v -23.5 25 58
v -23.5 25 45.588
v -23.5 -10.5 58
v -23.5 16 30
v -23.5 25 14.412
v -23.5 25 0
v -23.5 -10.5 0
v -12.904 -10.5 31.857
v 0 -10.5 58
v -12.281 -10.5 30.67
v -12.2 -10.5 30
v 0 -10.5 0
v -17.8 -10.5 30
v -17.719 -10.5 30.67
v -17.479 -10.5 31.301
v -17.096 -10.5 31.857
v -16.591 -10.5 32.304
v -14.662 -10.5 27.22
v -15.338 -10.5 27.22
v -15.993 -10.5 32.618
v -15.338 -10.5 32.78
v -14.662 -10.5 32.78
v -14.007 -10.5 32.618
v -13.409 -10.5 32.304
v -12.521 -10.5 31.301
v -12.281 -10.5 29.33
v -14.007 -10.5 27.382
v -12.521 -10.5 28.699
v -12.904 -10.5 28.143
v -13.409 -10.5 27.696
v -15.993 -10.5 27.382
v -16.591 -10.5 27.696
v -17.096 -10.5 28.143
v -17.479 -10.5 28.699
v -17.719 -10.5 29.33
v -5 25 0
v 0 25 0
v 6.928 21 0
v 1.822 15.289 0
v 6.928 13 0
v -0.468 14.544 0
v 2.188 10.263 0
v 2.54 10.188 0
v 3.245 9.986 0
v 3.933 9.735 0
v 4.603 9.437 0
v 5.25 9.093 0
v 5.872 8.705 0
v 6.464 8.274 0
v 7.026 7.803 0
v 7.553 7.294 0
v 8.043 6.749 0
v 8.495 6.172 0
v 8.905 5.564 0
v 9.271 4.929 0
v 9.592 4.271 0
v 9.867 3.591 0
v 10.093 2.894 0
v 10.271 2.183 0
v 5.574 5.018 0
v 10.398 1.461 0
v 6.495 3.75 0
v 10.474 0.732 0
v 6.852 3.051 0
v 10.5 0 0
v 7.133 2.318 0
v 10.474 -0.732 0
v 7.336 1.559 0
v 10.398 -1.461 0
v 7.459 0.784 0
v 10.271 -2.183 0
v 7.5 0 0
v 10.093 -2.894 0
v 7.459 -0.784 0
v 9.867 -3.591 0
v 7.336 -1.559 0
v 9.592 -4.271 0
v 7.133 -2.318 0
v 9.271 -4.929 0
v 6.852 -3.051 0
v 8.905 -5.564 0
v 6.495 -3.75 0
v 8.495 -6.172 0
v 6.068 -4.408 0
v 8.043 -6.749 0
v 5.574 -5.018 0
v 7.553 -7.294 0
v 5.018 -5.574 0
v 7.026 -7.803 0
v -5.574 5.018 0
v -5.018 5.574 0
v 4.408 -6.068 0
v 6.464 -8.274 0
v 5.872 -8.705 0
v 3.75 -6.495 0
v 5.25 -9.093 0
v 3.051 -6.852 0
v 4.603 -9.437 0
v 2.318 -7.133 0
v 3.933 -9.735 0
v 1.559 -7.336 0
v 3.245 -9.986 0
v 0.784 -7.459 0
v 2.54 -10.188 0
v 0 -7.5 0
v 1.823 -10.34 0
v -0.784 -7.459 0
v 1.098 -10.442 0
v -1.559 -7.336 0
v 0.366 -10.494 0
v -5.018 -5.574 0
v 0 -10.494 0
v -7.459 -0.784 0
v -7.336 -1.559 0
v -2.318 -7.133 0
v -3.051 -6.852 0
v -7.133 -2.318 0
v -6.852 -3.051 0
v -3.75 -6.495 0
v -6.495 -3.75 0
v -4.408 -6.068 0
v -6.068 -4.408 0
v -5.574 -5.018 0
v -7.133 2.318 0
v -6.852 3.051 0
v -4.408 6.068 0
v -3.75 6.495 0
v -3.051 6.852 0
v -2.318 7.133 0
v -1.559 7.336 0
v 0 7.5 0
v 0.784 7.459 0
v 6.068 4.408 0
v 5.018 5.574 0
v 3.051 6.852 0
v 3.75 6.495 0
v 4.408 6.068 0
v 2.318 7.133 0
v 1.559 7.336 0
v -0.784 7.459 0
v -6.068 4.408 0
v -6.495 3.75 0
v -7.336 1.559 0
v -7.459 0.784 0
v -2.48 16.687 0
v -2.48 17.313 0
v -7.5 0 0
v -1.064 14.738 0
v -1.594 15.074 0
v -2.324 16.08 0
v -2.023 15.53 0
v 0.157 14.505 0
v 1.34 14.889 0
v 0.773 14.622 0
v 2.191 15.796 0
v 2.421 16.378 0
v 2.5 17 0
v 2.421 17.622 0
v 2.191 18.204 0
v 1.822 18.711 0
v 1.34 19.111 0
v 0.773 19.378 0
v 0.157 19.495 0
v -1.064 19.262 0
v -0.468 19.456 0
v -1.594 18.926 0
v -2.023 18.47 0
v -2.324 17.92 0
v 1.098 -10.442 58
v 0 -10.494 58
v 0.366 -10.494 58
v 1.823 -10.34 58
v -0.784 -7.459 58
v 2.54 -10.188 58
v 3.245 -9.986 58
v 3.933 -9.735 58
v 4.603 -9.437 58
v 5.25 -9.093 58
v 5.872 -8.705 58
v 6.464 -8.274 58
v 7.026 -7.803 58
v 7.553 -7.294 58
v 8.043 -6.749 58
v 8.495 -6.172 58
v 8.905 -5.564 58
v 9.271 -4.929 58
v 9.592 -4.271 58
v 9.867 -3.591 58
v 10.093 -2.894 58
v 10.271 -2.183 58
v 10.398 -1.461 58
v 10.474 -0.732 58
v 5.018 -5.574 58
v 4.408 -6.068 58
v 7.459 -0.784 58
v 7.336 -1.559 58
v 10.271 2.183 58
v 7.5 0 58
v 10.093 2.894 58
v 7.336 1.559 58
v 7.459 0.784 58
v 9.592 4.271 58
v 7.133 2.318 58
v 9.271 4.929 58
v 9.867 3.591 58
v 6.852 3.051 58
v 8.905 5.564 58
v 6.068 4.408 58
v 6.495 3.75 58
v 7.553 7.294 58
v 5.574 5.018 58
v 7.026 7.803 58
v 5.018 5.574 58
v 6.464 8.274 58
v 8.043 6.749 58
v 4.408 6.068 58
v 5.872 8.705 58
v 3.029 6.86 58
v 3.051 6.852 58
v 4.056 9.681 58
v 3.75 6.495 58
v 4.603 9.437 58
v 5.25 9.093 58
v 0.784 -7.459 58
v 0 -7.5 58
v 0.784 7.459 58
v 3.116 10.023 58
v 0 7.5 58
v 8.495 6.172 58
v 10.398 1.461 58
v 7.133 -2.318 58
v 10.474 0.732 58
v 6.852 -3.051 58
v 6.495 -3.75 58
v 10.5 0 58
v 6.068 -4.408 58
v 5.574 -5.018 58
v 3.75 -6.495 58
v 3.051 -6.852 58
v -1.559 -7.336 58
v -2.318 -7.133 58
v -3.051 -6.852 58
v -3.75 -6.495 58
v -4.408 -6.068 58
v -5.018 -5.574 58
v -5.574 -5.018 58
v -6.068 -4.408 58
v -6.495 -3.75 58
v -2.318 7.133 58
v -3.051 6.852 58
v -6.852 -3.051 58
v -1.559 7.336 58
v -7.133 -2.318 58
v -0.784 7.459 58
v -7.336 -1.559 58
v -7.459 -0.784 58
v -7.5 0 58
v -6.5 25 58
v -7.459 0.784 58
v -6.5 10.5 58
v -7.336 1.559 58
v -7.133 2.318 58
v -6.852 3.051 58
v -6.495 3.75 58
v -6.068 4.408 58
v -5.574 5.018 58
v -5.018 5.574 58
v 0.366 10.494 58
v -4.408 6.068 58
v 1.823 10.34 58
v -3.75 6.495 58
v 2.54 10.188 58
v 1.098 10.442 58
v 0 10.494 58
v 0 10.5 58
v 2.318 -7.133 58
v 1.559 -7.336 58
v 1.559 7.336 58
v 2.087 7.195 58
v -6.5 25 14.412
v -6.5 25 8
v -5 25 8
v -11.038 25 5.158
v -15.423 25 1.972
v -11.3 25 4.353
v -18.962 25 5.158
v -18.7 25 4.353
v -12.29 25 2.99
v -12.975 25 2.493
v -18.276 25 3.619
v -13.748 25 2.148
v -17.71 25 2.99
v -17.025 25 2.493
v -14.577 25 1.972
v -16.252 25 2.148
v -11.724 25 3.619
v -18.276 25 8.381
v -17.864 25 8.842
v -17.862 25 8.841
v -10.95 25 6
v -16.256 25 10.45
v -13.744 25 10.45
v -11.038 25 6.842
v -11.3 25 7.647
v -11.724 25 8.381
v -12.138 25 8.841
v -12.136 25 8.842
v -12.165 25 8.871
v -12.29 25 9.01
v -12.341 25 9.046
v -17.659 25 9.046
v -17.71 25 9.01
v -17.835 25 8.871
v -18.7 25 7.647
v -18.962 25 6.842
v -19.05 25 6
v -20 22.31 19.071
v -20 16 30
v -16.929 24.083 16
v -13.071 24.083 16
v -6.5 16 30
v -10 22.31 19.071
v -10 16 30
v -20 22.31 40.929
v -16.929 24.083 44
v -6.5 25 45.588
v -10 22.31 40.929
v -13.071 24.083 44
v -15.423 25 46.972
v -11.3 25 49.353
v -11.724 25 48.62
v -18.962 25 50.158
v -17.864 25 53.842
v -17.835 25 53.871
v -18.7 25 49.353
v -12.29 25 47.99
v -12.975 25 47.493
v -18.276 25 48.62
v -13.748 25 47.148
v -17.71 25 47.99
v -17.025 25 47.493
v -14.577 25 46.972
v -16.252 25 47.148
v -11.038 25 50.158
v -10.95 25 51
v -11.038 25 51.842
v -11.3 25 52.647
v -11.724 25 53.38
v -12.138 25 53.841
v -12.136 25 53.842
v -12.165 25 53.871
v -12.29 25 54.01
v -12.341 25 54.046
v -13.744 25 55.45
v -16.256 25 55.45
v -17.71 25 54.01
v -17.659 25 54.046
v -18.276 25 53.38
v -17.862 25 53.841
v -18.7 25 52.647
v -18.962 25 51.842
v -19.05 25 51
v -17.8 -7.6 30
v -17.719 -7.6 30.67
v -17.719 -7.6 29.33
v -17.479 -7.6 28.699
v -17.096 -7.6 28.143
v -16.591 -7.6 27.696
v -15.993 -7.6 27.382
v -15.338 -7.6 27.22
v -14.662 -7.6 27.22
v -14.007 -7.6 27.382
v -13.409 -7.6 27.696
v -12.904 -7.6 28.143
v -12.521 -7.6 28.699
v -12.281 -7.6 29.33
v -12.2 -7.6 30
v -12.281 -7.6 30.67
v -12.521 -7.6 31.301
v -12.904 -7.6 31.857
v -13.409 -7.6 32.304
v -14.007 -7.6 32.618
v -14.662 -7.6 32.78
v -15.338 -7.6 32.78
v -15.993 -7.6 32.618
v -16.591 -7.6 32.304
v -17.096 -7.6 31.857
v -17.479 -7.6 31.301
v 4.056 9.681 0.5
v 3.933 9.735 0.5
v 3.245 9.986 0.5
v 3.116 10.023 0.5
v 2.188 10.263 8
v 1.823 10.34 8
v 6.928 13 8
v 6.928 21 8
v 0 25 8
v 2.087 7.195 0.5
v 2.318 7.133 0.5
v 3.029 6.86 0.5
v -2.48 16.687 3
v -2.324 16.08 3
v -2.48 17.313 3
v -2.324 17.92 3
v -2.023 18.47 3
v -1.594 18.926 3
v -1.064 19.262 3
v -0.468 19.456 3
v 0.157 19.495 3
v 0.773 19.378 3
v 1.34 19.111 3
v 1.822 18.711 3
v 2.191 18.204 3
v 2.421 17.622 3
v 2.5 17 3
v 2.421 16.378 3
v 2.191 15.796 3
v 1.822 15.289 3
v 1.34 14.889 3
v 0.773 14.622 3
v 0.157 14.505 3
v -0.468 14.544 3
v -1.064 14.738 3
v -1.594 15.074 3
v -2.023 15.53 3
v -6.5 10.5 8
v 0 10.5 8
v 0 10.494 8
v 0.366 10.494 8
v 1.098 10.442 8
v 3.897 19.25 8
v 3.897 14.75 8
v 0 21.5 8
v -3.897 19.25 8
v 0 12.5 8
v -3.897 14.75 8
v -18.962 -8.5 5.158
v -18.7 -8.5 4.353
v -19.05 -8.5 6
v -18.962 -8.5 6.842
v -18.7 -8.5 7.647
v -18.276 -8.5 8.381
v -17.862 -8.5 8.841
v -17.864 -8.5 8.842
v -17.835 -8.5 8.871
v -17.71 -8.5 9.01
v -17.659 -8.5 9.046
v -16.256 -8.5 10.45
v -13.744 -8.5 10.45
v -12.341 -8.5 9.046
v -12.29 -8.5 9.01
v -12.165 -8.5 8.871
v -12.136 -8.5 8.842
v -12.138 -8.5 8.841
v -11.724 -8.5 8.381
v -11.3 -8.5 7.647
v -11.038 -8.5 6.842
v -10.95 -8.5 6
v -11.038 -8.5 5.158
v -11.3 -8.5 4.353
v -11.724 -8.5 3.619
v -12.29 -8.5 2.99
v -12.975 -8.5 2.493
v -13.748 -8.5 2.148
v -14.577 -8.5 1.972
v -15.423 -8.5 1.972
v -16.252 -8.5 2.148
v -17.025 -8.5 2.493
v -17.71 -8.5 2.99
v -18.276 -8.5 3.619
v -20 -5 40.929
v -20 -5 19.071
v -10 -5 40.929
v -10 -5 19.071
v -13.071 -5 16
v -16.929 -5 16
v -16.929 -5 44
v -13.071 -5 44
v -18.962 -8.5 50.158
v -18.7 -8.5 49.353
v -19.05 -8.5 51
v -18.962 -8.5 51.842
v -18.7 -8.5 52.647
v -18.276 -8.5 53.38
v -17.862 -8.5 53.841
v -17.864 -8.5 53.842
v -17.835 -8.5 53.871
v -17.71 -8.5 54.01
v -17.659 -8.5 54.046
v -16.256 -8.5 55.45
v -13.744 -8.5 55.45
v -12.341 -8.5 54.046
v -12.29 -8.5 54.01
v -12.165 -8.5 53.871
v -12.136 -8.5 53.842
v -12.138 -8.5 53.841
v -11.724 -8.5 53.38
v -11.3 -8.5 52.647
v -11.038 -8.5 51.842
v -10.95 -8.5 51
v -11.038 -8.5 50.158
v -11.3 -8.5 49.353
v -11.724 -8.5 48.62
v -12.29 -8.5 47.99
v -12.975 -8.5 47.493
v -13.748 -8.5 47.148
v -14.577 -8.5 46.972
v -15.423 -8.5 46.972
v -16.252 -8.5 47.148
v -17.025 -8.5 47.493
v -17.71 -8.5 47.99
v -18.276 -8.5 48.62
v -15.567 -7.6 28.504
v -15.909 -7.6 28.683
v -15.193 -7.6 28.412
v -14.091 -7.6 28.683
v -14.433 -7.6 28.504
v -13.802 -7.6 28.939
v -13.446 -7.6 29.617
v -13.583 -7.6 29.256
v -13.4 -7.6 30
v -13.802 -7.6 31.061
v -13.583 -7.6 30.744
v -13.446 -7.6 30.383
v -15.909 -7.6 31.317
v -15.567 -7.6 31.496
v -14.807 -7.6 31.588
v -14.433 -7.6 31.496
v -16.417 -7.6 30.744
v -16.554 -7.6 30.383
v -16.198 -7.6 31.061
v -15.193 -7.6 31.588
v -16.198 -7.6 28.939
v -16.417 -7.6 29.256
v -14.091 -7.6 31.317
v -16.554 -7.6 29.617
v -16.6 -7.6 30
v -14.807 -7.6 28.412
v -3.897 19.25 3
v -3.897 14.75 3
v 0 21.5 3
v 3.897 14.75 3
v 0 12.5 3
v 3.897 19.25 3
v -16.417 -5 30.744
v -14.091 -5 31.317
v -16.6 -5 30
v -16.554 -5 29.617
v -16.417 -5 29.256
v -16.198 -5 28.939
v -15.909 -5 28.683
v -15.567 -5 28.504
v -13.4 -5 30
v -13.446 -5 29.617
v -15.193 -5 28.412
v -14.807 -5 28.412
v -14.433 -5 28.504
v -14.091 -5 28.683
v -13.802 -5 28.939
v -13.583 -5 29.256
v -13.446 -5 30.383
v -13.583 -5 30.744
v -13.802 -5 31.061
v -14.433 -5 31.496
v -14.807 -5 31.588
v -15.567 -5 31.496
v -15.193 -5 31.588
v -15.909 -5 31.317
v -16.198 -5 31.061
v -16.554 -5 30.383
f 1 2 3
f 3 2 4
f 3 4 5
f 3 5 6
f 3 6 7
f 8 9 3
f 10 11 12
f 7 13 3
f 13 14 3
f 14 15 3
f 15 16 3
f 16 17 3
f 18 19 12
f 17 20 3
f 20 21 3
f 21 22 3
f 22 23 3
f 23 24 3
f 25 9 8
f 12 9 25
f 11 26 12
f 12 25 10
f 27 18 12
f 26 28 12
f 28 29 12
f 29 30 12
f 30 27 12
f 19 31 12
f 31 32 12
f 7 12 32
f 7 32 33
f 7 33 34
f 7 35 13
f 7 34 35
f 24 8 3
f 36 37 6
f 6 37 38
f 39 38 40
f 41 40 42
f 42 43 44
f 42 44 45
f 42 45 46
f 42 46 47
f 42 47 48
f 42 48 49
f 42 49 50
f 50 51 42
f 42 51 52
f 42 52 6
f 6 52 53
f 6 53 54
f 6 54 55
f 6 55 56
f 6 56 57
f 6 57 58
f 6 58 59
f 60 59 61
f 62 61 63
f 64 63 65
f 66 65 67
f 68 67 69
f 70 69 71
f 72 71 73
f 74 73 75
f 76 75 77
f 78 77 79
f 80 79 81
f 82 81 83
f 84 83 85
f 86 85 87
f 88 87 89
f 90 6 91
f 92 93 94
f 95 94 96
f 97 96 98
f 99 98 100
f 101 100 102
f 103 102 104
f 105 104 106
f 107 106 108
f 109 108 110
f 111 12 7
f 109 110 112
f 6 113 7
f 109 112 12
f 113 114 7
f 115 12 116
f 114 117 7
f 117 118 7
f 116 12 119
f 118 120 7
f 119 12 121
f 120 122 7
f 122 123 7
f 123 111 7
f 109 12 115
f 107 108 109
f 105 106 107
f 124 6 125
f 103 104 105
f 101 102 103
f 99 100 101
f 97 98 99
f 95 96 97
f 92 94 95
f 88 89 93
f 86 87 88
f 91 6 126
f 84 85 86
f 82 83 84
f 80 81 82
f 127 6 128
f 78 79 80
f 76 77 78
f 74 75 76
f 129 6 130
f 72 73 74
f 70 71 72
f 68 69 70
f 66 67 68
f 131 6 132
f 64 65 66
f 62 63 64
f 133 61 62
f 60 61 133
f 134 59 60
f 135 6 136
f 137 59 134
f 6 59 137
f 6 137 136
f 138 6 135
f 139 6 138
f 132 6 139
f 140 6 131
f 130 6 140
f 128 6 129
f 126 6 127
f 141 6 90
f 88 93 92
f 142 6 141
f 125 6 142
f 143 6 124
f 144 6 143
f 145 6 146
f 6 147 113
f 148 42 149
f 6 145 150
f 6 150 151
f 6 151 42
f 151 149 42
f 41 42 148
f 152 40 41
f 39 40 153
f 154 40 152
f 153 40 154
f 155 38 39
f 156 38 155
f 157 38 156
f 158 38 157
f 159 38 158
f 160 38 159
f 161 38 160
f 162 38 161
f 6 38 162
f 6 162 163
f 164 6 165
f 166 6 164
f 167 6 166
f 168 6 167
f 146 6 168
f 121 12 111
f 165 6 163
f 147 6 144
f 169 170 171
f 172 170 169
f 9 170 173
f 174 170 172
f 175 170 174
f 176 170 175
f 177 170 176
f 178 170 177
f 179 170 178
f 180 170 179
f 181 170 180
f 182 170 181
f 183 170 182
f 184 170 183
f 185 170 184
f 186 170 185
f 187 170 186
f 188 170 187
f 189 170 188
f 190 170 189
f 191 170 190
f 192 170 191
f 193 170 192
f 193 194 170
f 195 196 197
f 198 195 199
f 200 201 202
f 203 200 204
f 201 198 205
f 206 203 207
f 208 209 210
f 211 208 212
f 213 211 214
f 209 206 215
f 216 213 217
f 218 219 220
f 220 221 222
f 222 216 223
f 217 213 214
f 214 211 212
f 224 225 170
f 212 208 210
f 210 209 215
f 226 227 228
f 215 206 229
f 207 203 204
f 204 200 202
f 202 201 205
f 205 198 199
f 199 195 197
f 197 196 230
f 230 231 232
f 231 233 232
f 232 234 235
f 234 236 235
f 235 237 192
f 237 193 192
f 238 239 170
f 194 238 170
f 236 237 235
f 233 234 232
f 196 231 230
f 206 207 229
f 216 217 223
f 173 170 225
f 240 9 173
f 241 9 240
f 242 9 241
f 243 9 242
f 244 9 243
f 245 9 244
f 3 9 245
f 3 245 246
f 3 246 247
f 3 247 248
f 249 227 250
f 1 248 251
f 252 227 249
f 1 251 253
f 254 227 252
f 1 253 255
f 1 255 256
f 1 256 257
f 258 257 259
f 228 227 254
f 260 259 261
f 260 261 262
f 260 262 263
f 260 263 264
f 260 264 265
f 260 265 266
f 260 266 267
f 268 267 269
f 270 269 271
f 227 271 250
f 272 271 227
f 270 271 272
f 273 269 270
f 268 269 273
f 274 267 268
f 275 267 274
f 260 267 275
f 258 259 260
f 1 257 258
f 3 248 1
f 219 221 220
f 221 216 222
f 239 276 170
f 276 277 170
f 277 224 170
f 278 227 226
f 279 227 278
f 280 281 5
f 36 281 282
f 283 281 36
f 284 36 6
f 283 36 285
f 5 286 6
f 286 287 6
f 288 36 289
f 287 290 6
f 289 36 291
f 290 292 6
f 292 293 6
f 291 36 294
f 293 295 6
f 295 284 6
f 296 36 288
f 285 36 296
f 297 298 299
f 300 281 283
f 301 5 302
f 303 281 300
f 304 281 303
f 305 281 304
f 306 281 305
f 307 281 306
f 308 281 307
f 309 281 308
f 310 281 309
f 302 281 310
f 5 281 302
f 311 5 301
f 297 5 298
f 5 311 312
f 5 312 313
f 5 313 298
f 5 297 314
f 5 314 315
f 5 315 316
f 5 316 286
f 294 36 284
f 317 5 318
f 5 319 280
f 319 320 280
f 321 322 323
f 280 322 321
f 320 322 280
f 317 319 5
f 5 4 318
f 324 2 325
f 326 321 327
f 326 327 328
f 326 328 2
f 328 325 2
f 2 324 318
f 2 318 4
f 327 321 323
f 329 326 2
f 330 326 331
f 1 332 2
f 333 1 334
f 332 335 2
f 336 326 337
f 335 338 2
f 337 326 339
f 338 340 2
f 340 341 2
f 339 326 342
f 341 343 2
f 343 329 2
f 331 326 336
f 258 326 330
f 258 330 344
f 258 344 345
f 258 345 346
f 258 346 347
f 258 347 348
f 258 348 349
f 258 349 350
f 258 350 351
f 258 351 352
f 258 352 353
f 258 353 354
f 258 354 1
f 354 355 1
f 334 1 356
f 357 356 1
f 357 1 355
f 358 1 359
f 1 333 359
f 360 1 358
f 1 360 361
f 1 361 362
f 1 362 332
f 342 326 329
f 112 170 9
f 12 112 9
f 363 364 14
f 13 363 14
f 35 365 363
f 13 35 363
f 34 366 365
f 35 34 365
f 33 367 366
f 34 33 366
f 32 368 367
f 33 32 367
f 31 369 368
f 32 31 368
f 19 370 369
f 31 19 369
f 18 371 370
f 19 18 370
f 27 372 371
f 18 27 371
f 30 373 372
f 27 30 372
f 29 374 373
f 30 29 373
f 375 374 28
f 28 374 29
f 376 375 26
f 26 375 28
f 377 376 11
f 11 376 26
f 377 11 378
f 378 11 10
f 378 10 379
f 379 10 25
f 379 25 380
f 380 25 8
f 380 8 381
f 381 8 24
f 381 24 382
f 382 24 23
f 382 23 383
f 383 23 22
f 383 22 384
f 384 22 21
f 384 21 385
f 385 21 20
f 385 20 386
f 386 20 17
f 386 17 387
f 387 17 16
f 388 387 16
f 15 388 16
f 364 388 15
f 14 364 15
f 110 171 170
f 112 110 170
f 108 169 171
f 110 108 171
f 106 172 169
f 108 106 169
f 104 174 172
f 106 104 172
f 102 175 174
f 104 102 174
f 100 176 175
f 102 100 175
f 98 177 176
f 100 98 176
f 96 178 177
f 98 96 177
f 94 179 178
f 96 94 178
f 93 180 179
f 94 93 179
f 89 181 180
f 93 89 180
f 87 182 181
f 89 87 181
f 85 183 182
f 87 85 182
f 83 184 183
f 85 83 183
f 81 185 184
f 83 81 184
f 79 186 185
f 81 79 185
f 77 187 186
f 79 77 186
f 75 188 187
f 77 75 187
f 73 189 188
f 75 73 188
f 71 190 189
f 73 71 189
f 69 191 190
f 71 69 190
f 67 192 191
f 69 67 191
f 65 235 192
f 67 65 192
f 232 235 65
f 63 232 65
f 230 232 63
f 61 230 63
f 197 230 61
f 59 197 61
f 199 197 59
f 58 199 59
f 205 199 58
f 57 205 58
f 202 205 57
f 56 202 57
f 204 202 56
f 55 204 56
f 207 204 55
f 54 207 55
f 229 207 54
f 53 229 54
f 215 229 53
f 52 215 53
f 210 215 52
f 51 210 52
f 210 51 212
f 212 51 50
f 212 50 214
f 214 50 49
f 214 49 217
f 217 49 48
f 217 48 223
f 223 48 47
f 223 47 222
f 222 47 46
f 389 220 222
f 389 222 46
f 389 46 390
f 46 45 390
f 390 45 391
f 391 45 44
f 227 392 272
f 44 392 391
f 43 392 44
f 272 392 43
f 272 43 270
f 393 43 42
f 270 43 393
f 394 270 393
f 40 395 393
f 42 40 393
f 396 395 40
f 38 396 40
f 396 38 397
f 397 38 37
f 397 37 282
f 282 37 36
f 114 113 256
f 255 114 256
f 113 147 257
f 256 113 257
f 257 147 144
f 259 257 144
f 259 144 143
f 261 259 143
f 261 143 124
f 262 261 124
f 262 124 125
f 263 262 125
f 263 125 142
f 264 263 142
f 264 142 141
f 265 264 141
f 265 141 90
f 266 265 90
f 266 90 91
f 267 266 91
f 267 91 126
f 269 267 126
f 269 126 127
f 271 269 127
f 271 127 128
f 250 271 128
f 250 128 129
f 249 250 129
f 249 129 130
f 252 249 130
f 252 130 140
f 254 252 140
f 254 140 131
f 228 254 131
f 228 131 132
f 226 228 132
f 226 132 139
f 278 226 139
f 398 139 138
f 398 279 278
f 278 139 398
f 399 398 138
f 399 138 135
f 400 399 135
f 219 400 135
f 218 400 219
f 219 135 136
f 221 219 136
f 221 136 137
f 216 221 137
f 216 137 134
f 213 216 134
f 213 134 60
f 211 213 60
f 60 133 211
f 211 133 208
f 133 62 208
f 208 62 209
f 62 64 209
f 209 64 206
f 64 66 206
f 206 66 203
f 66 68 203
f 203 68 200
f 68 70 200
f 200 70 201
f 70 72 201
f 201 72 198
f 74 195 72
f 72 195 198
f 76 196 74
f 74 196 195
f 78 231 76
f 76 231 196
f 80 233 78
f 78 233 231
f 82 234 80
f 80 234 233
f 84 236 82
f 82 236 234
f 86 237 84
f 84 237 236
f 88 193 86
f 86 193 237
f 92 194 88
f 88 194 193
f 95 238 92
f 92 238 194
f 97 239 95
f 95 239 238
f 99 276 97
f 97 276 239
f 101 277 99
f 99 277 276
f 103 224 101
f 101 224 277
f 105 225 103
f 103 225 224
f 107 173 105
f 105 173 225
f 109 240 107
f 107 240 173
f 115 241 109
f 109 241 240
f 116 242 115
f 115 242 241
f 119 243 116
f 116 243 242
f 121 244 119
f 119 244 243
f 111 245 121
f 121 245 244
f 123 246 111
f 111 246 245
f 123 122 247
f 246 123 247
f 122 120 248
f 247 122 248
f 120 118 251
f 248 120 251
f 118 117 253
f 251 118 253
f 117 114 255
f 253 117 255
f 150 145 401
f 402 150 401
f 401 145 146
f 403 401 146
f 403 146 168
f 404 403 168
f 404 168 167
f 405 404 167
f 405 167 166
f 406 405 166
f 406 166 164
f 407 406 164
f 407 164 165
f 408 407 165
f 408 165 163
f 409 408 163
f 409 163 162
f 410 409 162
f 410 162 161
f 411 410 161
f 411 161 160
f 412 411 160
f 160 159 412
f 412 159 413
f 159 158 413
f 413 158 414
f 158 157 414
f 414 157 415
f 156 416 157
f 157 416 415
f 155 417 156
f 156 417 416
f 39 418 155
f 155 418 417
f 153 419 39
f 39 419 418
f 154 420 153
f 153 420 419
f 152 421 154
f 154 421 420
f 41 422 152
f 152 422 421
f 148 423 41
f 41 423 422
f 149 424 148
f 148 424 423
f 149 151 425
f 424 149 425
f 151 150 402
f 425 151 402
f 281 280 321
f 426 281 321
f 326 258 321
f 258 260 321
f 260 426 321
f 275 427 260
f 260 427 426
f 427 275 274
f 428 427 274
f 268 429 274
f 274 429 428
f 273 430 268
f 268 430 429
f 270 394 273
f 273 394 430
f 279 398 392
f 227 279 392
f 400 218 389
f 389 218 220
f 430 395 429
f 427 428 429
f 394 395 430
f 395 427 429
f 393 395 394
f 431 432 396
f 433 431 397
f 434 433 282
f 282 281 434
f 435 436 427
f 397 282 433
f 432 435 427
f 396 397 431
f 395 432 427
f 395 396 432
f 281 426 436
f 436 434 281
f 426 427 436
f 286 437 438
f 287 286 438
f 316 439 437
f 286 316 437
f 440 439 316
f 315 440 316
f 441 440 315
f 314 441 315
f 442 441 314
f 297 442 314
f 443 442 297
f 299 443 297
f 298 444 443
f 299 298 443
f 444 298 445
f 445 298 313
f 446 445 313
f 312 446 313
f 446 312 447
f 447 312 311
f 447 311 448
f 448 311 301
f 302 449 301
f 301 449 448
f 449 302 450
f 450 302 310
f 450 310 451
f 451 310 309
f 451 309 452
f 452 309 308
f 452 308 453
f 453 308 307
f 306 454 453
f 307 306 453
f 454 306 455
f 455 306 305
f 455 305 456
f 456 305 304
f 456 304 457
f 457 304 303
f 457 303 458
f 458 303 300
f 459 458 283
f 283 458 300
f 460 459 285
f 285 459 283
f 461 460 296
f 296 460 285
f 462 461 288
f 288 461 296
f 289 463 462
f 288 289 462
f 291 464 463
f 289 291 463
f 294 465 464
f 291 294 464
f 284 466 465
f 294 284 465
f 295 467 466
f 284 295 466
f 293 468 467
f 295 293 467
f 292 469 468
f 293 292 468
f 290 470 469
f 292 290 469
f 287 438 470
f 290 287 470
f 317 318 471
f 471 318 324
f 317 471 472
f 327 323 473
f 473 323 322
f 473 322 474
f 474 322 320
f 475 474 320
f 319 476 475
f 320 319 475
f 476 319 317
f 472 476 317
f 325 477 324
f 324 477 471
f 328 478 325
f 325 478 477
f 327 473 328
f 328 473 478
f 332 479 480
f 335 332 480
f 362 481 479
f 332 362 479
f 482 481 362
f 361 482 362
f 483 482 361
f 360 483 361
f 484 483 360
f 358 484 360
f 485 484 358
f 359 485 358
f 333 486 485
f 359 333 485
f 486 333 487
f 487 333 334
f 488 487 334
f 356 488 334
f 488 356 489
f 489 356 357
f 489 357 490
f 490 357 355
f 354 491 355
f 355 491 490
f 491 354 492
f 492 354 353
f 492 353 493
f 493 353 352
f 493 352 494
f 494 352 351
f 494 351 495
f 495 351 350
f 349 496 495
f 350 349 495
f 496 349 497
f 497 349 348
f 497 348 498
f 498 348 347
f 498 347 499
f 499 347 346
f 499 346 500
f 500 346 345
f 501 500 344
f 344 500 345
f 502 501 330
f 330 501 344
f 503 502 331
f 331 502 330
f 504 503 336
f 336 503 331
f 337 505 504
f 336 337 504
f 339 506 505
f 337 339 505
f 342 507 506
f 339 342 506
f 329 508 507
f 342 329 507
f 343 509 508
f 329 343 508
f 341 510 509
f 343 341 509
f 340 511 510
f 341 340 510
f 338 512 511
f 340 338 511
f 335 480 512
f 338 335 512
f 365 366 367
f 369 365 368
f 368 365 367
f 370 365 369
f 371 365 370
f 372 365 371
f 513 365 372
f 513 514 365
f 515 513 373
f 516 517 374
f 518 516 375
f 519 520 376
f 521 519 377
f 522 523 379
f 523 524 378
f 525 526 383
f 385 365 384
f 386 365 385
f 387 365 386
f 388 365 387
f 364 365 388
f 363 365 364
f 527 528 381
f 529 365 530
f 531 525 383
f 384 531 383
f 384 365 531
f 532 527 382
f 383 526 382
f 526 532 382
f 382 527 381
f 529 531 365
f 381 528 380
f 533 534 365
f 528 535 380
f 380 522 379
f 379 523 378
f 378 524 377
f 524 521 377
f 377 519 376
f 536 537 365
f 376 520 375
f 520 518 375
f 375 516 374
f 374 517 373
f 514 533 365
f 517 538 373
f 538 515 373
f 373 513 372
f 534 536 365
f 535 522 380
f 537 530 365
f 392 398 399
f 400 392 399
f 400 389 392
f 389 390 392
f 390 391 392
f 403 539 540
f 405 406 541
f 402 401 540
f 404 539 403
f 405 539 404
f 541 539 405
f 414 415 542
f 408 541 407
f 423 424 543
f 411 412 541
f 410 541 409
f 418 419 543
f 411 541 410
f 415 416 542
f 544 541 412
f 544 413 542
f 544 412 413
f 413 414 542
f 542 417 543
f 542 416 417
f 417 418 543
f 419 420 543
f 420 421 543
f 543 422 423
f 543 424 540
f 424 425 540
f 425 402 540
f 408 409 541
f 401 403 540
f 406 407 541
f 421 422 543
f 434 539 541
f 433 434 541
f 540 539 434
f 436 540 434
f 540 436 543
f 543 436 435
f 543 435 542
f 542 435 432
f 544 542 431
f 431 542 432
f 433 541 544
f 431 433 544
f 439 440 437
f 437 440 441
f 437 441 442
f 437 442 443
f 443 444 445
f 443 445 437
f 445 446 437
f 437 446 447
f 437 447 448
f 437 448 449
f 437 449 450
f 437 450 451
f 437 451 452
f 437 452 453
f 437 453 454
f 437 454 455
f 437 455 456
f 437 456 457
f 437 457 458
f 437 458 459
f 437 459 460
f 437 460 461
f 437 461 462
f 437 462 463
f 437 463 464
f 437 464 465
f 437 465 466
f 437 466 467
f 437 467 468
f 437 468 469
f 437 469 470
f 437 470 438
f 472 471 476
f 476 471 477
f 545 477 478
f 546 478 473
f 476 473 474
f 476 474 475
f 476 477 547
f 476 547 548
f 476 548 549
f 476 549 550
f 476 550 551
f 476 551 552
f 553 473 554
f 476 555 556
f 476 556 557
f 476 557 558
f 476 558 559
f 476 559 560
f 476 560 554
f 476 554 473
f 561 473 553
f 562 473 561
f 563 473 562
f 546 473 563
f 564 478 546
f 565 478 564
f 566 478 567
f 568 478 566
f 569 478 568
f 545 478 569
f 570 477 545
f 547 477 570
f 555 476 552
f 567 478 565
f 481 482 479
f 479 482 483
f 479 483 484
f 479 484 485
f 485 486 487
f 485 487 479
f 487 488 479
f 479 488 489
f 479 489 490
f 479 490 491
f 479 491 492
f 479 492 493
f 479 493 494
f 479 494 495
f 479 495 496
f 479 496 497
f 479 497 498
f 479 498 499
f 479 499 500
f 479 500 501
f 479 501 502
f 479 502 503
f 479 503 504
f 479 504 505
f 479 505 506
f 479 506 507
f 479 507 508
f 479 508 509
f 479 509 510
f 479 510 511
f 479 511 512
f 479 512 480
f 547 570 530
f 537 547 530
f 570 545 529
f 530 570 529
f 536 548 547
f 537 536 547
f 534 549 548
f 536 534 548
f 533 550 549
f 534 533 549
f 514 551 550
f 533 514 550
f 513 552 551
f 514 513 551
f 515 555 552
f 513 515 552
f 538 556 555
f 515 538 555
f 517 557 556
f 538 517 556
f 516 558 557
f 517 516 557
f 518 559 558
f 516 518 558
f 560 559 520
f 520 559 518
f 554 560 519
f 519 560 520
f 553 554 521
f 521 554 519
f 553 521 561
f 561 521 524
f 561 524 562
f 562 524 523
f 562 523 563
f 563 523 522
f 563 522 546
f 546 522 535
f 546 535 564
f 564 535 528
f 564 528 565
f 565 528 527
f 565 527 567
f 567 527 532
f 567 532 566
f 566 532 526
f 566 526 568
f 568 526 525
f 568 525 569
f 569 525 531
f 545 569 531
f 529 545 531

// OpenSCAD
// file: inc/bearing.scad
// PRUSA iteration3
// Bearing holders
// GNU GPL v3
// Josef Průša <iam@josefprusa.cz> and contributors
// http://www.reprap.org/wiki/Prusa_Mendel
// http://prusamendel.org

bearing_diameter = 15;
thinwall         = 3;
bearing_size     = bearing_diameter + 2 * thinwall;


module horizontal_bearing_base(bearings=1){
    translate(v=[0,0,6]) cube(size = [24,8+bearings*25,12], center = true);	
}

module horizontal_bearing_holes(bearings=1){
    cutter_lenght     = 10+bearings*25;
    one_holder_lenght = 8+25;
    holder_lenght     = 8+bearings*25;
 
    //Main bearing cut
    difference(){
        translate(v=[0,0,12]) rotate(a=[90,0,0]) translate(v=[0,0,-cutter_lenght/2]) cylinder(h = cutter_lenght, r=bearing_diameter/2, $fn=50);
        
        //Bearing retainers
        translate(v=[0,1-holder_lenght/2,3]) cube(size = [24,6,8], center = true);
        translate(v=[0,-1+holder_lenght/2,3]) cube(size = [24,6,8], center = true);
    }
 
    //Ziptie cutouts
    ziptie_cut_ofset = 0;

    for (i = [0 : bearings-1]){
        // For easier positioning I move them by half of one 
        // bearing holder then add each bearign lenght and then center again
        translate(v=[0,-holder_lenght/2,0]) translate(v=[0,one_holder_lenght/2+i*25,0]) difference(){
            union(){
                translate(v=[0,2-6,12]) rotate(a=[90,0,0]) translate(v=[0,0,0]) cylinder(h = 4, r=12.5, $fn=50);
                translate(v=[0,2+6,12]) rotate(a=[90,0,0]) translate(v=[0,0,0]) cylinder(h = 4, r=12.5, $fn=50);
            }
            translate(v=[0,10,12]) rotate(a=[90,0,0]) translate(v=[0,0,0]) cylinder(h = 24, r=10, $fn=50);
        }
    }
}

module horizontal_bearing_test(){
    difference(){
        horizontal_bearing_base(1);
        horizontal_bearing_holes(1);
    }
    translate(v=[30,0,0]) difference(){
        horizontal_bearing_base(2);
        horizontal_bearing_holes(2);
    }

    translate(v=[60,0,0]) difference(){
        horizontal_bearing_base(3);
        horizontal_bearing_holes(3);
    }
}

module vertical_bearing_base(){
    translate(v=[-2-bearing_size/4,0,29]) cube(size = [4+bearing_size/2,bearing_size,58], center = true);
    cylinder(h = 58, r=bearing_size/2, $fn = 90);
}

module vertical_bearing_holes(){
    translate(v=[0,0,-1]) cylinder(h = 62, r=bearing_diameter/2, $fn = 60);
    rotate(a=[0,0,-70]) translate(v=[8,0,31.5]) cube(size = [5,1,62], center = true);
}

//Final part
difference(){
    vertical_bearing_base();
    vertical_bearing_holes();
}
// file: inc/x-end.scad
// PRUSA iteration3
// X end prototype
// GNU GPL v3
// Josef Průša <iam@josefprusa.cz> and contributors
// http://www.reprap.org/wiki/Prusa_Mendel
// http://prusamendel.org

use <bearing.scad>

rod_distance = 45;


module x_end_base(){
	//Main block
	height = 58;
	translate(v=[-15,-9,height/2]) cube(size = [17,39,height], center = true);
	
	//Bearing holder
 	vertical_bearing_base();	
	
	//Nut trap
 	// Cube
 	translate(v=[-2-2,-17,4]) cube(size = [8,16,8], center = true);

 	//Hexagon
 	translate(v=[0,-17,0]) rotate([0,0,30]) cylinder(h = 8, r=8, $fn = 6);
}

module x_end_holes(){
    vertical_bearing_holes();
    
    //Belt hole
    translate(v=[-1,0,0]) difference(){
	   translate(v=[-5.5-10+1.5,-15,30]) cube(size = [10,46,28], center = true);
    	// Nice edges
    	translate(v=[-5.5-10+1.5,-10,30+23]) rotate([0,45,0]) cube(size = [10,46,28], center = true);
    	translate(v=[-5.5-10+1.5,-10,30+23]) rotate([0,-45,0]) cube(size = [10,46,28], center = true);
    	translate(v=[-5.5-10+1.5,-10,30-23]) rotate([0,45,0]) cube(size = [10,46,28], center = true);
    	translate(v=[-5.5-10+1.5,-10,30-23]) rotate([0,-45,0]) cube(size = [10,46,28], center = true);

    }

    //Bottom pushfit rod
    translate(v=[-15,-41.5,6]) rotate(a=[-90,0,0]) pushfit_rod(8.1,50);

    //Top pushfit rod
    translate(v=[-15,-41.5,rod_distance+6]) rotate(a=[-90,0,0]) pushfit_rod(8.1,50);
    
    //Nut trap
    translate(v=[0,-17,-0.5]) cylinder(h = 4, r1=2.5, r2=2.5, $fn=25);
    translate(v=[0,-17,3]) rotate([0,0,30]) cylinder(h = 10, r=4.5, $fn = 6);
}

module pushfit_rod(diameter,length){
    cylinder(h = length, r=diameter/2, $fn=30);
    difference(){
        translate(v=[0,-diameter/2.85,length/2]) rotate([0,0,45]) cube(size = [diameter/2,diameter/2,length], center = true);
        translate(v=[0,-diameter/4-diameter/2-0.4,length/2]) rotate([0,0,0]) cube(size = [diameter,diameter/2,length], center = true);
    }
}

//Final part
module x_end_plain(){
    difference(){
        x_end_base();
        x_end_holes();
    }
}

x_end_plain();
// main file
// 623/624 bearing belt guide
// Based on Josef Prusa vanilla x-end-idler design (https://github.com/josefprusa/Prusa3-vanilla) and PowerCode Code_Xend_Idler_A_M6 part (https://github.com/Mecan0/Code)
// By Julio Galaron (@jgalaron)
// GNU GPL v3

use <inc/x-end.scad>

module x_end_idler_base(){
	x_end_base();	
}

module x_end_idler_holes(){
	x_end_holes();
    translate([0,-23,30.25])     rotate([0,-90,0]) cylinder(h=80, r=1.8, $fn=30);
	translate([1.5,-23,30.25])   rotate([0,-90,0]) cylinder(h=10, r=3.1, $fn=30);
	translate([-21.5,-23,30.25]) rotate([0,-90,0]) rotate([0,0,30]) cylinder(h=80, r=3.6, $fn=6);
}

module idler(){

	translate([0,0,0])difference(){

	difference(){
		union(){
			intersection(){
				translate(v=[-1,70,0])
					#scale(.98) difference(){
						translate(v=[-5.5-10+1.5,-13.5,30]) cube([10,34,28], center=true);

						// Nice edges
						translate([-5.5-10+1.5,-10,30+23]) rotate([0,45,0])  cube([10,46,28], center=true);
						translate([-5.5-10+1.5,-10,30+23]) rotate([0,-45,0]) cube([10,46,28], center=true);
						translate([-5.5-10+1.5,-10,30-23]) rotate([0,45,0])  cube([10,46,28], center=true);
						translate([-5.5-10+1.5,-10,30-23]) rotate([0,-45,0]) cube([10,46,28], center=true);
					}
				}

				translate([-15,27,30]) rotate([90,0,180]) translate([0,0,13]) cylinder(r=5.5/2, h=6, $fn=26);
			}

			translate([-15,15,30])  rotate([90,0,180]) translate([0,0,13]) cylinder(r=3.2/2, h=20, $fn=26);
			#translate([-15,44,30]) rotate([90,0,180]) rotate([0,0,30])    cylinder(h =2.4, r=6/2, $fn=6);

		}
	}

}

module screw(){
	union(){
		cylinder(r=3.2/2, h=40, $fn=26);
		translate([0,0,13]) cylinder(r=5.6/2, h=3, $fn=26);
	}
}


module x_end_idler(){
    translate([-20,-8,14]) cube([10,3,30]);
    
    mirror([0,1,0]) difference(){
        x_end_idler_base();
        x_end_idler_holes();
    }
}


*idler();

//Final part
difference(){
    x_end_idler();
    translate([-25,25,-1])    cube([20,20,70]);
    translate([-27,36,30])    rotate([90,0,90]) cylinder(h = 25, r=20, $fn=6);
    translate([-15,-23.6,30]) rotate([90,0,180]) screw();
}
